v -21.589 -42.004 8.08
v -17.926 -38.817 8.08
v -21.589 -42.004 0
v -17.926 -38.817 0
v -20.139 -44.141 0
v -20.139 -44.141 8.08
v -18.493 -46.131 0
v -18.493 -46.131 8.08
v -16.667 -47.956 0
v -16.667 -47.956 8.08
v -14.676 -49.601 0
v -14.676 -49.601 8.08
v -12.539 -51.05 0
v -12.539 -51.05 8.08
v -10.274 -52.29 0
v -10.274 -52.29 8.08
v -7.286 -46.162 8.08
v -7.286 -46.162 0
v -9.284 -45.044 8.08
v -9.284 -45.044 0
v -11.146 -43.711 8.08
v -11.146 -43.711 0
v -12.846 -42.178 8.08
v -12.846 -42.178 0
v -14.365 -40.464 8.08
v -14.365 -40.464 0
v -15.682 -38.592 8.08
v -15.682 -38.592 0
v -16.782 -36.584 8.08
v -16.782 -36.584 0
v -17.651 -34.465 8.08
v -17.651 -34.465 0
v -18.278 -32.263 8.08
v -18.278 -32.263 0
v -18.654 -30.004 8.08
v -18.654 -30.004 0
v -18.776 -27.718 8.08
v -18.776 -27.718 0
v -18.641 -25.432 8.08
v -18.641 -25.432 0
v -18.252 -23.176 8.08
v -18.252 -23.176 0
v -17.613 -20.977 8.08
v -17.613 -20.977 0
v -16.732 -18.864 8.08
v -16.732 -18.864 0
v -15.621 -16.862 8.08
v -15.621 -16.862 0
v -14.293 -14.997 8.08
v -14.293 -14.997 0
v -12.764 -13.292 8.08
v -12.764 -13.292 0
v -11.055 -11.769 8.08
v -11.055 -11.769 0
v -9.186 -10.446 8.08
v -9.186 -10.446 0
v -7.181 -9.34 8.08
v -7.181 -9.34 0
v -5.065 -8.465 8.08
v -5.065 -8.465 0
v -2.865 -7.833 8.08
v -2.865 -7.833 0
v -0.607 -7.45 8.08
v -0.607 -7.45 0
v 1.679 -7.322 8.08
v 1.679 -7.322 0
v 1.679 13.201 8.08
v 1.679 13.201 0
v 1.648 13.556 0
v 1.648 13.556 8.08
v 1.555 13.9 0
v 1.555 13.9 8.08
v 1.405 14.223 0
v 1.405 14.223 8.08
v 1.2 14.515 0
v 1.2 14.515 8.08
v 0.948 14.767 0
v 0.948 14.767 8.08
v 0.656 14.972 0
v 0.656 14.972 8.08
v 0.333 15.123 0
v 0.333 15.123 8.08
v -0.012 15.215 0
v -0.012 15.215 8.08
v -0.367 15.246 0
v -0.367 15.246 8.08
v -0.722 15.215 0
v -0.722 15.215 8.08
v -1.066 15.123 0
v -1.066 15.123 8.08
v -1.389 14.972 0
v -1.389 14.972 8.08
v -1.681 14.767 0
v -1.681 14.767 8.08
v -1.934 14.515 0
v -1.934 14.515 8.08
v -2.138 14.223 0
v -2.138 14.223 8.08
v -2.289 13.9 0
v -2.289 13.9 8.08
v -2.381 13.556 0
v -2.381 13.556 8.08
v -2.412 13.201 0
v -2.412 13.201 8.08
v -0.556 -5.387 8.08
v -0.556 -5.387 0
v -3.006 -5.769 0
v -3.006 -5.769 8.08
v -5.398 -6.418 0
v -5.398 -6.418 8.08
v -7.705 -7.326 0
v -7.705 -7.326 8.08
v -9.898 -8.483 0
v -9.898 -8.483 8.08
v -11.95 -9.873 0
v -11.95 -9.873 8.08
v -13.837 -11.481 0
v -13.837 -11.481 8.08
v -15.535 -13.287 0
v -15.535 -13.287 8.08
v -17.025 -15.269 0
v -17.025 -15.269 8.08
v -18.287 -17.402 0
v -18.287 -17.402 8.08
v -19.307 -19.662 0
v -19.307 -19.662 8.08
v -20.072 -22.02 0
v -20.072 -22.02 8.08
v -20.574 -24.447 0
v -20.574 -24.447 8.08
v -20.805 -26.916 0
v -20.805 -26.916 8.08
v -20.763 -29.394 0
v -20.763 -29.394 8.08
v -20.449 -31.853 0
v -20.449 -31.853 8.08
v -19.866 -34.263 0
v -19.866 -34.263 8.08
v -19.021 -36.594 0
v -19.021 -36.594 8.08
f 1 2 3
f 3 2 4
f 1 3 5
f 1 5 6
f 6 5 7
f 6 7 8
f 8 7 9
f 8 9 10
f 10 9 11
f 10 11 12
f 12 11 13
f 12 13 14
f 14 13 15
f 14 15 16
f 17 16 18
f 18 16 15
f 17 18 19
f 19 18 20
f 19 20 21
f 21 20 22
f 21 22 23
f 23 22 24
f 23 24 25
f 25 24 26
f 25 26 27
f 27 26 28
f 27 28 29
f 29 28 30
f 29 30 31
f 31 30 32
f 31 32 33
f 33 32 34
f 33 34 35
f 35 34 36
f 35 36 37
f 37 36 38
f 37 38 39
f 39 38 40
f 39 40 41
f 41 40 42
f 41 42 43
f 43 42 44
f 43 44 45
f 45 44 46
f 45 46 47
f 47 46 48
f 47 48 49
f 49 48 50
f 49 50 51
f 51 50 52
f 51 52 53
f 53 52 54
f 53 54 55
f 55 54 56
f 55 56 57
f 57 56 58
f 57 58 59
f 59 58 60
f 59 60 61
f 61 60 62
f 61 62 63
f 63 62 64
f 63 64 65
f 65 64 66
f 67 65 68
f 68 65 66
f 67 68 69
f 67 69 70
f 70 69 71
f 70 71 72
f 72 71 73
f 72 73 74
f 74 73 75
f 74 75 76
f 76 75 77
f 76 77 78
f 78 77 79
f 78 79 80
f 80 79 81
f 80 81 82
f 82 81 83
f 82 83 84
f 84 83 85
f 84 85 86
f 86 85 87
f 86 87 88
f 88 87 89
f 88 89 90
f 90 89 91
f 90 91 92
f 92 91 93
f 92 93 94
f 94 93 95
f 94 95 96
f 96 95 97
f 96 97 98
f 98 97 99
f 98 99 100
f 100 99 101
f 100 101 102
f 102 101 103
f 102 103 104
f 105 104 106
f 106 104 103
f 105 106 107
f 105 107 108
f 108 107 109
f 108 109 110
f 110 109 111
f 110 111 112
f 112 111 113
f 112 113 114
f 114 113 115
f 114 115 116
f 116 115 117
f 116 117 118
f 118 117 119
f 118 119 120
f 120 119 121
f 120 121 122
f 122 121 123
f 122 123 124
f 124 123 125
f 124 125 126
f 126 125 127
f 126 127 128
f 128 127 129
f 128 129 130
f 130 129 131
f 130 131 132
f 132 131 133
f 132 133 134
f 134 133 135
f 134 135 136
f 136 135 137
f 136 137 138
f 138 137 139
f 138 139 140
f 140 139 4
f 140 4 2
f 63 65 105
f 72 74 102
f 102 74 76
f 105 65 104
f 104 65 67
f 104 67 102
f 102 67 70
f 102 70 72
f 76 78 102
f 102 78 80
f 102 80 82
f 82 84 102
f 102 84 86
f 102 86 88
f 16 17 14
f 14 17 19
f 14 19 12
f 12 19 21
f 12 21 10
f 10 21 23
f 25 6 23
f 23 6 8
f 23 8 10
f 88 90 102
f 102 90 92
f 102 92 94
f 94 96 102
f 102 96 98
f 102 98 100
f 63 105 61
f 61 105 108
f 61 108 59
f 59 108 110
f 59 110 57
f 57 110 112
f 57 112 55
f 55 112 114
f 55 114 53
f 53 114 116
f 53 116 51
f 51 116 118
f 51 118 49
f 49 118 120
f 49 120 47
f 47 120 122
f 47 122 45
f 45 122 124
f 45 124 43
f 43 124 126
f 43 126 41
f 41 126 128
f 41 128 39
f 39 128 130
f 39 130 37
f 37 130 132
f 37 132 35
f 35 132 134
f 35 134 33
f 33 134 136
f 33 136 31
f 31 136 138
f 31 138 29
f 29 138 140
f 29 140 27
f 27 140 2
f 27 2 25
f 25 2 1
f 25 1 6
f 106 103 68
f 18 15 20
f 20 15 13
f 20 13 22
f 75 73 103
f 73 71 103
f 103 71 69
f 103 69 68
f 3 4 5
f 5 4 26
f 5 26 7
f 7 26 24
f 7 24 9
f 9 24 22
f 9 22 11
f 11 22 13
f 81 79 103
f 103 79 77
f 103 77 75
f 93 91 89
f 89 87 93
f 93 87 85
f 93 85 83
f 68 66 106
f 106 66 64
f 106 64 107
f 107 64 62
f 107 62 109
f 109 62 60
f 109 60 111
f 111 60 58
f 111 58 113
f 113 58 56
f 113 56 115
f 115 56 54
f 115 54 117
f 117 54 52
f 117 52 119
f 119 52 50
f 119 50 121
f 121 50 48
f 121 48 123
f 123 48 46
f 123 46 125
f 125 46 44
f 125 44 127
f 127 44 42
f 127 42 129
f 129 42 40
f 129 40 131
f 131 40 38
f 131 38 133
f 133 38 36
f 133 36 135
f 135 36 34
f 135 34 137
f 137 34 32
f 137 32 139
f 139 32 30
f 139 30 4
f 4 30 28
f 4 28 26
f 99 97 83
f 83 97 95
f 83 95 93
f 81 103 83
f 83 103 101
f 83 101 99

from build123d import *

# Parameters (mm, degrees)
RESSALTO_EXTRUS_O1_DEPTH = 11.849977
ESCALA1_SCALE            = 0.681818182


with BuildPart() as part:
    # Esboço1 → Ressalto-extrusão1 (new body)
    with BuildSketch(Plane.XY):
        with BuildLine():
            ThreePointArc((-10.685745363, -67.703603991), (-26.769323244, -33.991425444), (2.462180193, -10.738217779))
            Line((2.462180193, -10.738217779), (2.462180193, -0.672237217))
            Line((2.462180193, -0.672237217), (2.462180193, 19.360753065))
            ThreePointArc((2.462180193, 19.360753065), (-0.537819807, 22.360753065), (-3.537819807, 19.360753065))
            Line((-3.537819807, 19.360753065), (-3.478607435, 18.767652629))
            Line((-3.478607435, 18.767652629), (-0.816088481, -7.901455538))
            ThreePointArc((-0.816088481, -7.901455538), (-26.821074104, -25.523388901), (-26.291187743, -56.932162089))
            Line((-26.291187743, -56.932162089), (-31.663381791, -61.605561148))
            ThreePointArc((-31.663381791, -61.605561148), (-24.444874339, -70.335690922), (-15.068387215, -76.692066062))
            Line((-15.068387215, -76.692066062), (-10.685745363, -67.703603991))
        make_face()
    extrude(amount=RESSALTO_EXTRUS_O1_DEPTH)


with BuildPart() as part_1:
    # Escala1: scaled about (0, 0, 0)
    add(part.part.scale(ESCALA1_SCALE))


solid = part_1.part
